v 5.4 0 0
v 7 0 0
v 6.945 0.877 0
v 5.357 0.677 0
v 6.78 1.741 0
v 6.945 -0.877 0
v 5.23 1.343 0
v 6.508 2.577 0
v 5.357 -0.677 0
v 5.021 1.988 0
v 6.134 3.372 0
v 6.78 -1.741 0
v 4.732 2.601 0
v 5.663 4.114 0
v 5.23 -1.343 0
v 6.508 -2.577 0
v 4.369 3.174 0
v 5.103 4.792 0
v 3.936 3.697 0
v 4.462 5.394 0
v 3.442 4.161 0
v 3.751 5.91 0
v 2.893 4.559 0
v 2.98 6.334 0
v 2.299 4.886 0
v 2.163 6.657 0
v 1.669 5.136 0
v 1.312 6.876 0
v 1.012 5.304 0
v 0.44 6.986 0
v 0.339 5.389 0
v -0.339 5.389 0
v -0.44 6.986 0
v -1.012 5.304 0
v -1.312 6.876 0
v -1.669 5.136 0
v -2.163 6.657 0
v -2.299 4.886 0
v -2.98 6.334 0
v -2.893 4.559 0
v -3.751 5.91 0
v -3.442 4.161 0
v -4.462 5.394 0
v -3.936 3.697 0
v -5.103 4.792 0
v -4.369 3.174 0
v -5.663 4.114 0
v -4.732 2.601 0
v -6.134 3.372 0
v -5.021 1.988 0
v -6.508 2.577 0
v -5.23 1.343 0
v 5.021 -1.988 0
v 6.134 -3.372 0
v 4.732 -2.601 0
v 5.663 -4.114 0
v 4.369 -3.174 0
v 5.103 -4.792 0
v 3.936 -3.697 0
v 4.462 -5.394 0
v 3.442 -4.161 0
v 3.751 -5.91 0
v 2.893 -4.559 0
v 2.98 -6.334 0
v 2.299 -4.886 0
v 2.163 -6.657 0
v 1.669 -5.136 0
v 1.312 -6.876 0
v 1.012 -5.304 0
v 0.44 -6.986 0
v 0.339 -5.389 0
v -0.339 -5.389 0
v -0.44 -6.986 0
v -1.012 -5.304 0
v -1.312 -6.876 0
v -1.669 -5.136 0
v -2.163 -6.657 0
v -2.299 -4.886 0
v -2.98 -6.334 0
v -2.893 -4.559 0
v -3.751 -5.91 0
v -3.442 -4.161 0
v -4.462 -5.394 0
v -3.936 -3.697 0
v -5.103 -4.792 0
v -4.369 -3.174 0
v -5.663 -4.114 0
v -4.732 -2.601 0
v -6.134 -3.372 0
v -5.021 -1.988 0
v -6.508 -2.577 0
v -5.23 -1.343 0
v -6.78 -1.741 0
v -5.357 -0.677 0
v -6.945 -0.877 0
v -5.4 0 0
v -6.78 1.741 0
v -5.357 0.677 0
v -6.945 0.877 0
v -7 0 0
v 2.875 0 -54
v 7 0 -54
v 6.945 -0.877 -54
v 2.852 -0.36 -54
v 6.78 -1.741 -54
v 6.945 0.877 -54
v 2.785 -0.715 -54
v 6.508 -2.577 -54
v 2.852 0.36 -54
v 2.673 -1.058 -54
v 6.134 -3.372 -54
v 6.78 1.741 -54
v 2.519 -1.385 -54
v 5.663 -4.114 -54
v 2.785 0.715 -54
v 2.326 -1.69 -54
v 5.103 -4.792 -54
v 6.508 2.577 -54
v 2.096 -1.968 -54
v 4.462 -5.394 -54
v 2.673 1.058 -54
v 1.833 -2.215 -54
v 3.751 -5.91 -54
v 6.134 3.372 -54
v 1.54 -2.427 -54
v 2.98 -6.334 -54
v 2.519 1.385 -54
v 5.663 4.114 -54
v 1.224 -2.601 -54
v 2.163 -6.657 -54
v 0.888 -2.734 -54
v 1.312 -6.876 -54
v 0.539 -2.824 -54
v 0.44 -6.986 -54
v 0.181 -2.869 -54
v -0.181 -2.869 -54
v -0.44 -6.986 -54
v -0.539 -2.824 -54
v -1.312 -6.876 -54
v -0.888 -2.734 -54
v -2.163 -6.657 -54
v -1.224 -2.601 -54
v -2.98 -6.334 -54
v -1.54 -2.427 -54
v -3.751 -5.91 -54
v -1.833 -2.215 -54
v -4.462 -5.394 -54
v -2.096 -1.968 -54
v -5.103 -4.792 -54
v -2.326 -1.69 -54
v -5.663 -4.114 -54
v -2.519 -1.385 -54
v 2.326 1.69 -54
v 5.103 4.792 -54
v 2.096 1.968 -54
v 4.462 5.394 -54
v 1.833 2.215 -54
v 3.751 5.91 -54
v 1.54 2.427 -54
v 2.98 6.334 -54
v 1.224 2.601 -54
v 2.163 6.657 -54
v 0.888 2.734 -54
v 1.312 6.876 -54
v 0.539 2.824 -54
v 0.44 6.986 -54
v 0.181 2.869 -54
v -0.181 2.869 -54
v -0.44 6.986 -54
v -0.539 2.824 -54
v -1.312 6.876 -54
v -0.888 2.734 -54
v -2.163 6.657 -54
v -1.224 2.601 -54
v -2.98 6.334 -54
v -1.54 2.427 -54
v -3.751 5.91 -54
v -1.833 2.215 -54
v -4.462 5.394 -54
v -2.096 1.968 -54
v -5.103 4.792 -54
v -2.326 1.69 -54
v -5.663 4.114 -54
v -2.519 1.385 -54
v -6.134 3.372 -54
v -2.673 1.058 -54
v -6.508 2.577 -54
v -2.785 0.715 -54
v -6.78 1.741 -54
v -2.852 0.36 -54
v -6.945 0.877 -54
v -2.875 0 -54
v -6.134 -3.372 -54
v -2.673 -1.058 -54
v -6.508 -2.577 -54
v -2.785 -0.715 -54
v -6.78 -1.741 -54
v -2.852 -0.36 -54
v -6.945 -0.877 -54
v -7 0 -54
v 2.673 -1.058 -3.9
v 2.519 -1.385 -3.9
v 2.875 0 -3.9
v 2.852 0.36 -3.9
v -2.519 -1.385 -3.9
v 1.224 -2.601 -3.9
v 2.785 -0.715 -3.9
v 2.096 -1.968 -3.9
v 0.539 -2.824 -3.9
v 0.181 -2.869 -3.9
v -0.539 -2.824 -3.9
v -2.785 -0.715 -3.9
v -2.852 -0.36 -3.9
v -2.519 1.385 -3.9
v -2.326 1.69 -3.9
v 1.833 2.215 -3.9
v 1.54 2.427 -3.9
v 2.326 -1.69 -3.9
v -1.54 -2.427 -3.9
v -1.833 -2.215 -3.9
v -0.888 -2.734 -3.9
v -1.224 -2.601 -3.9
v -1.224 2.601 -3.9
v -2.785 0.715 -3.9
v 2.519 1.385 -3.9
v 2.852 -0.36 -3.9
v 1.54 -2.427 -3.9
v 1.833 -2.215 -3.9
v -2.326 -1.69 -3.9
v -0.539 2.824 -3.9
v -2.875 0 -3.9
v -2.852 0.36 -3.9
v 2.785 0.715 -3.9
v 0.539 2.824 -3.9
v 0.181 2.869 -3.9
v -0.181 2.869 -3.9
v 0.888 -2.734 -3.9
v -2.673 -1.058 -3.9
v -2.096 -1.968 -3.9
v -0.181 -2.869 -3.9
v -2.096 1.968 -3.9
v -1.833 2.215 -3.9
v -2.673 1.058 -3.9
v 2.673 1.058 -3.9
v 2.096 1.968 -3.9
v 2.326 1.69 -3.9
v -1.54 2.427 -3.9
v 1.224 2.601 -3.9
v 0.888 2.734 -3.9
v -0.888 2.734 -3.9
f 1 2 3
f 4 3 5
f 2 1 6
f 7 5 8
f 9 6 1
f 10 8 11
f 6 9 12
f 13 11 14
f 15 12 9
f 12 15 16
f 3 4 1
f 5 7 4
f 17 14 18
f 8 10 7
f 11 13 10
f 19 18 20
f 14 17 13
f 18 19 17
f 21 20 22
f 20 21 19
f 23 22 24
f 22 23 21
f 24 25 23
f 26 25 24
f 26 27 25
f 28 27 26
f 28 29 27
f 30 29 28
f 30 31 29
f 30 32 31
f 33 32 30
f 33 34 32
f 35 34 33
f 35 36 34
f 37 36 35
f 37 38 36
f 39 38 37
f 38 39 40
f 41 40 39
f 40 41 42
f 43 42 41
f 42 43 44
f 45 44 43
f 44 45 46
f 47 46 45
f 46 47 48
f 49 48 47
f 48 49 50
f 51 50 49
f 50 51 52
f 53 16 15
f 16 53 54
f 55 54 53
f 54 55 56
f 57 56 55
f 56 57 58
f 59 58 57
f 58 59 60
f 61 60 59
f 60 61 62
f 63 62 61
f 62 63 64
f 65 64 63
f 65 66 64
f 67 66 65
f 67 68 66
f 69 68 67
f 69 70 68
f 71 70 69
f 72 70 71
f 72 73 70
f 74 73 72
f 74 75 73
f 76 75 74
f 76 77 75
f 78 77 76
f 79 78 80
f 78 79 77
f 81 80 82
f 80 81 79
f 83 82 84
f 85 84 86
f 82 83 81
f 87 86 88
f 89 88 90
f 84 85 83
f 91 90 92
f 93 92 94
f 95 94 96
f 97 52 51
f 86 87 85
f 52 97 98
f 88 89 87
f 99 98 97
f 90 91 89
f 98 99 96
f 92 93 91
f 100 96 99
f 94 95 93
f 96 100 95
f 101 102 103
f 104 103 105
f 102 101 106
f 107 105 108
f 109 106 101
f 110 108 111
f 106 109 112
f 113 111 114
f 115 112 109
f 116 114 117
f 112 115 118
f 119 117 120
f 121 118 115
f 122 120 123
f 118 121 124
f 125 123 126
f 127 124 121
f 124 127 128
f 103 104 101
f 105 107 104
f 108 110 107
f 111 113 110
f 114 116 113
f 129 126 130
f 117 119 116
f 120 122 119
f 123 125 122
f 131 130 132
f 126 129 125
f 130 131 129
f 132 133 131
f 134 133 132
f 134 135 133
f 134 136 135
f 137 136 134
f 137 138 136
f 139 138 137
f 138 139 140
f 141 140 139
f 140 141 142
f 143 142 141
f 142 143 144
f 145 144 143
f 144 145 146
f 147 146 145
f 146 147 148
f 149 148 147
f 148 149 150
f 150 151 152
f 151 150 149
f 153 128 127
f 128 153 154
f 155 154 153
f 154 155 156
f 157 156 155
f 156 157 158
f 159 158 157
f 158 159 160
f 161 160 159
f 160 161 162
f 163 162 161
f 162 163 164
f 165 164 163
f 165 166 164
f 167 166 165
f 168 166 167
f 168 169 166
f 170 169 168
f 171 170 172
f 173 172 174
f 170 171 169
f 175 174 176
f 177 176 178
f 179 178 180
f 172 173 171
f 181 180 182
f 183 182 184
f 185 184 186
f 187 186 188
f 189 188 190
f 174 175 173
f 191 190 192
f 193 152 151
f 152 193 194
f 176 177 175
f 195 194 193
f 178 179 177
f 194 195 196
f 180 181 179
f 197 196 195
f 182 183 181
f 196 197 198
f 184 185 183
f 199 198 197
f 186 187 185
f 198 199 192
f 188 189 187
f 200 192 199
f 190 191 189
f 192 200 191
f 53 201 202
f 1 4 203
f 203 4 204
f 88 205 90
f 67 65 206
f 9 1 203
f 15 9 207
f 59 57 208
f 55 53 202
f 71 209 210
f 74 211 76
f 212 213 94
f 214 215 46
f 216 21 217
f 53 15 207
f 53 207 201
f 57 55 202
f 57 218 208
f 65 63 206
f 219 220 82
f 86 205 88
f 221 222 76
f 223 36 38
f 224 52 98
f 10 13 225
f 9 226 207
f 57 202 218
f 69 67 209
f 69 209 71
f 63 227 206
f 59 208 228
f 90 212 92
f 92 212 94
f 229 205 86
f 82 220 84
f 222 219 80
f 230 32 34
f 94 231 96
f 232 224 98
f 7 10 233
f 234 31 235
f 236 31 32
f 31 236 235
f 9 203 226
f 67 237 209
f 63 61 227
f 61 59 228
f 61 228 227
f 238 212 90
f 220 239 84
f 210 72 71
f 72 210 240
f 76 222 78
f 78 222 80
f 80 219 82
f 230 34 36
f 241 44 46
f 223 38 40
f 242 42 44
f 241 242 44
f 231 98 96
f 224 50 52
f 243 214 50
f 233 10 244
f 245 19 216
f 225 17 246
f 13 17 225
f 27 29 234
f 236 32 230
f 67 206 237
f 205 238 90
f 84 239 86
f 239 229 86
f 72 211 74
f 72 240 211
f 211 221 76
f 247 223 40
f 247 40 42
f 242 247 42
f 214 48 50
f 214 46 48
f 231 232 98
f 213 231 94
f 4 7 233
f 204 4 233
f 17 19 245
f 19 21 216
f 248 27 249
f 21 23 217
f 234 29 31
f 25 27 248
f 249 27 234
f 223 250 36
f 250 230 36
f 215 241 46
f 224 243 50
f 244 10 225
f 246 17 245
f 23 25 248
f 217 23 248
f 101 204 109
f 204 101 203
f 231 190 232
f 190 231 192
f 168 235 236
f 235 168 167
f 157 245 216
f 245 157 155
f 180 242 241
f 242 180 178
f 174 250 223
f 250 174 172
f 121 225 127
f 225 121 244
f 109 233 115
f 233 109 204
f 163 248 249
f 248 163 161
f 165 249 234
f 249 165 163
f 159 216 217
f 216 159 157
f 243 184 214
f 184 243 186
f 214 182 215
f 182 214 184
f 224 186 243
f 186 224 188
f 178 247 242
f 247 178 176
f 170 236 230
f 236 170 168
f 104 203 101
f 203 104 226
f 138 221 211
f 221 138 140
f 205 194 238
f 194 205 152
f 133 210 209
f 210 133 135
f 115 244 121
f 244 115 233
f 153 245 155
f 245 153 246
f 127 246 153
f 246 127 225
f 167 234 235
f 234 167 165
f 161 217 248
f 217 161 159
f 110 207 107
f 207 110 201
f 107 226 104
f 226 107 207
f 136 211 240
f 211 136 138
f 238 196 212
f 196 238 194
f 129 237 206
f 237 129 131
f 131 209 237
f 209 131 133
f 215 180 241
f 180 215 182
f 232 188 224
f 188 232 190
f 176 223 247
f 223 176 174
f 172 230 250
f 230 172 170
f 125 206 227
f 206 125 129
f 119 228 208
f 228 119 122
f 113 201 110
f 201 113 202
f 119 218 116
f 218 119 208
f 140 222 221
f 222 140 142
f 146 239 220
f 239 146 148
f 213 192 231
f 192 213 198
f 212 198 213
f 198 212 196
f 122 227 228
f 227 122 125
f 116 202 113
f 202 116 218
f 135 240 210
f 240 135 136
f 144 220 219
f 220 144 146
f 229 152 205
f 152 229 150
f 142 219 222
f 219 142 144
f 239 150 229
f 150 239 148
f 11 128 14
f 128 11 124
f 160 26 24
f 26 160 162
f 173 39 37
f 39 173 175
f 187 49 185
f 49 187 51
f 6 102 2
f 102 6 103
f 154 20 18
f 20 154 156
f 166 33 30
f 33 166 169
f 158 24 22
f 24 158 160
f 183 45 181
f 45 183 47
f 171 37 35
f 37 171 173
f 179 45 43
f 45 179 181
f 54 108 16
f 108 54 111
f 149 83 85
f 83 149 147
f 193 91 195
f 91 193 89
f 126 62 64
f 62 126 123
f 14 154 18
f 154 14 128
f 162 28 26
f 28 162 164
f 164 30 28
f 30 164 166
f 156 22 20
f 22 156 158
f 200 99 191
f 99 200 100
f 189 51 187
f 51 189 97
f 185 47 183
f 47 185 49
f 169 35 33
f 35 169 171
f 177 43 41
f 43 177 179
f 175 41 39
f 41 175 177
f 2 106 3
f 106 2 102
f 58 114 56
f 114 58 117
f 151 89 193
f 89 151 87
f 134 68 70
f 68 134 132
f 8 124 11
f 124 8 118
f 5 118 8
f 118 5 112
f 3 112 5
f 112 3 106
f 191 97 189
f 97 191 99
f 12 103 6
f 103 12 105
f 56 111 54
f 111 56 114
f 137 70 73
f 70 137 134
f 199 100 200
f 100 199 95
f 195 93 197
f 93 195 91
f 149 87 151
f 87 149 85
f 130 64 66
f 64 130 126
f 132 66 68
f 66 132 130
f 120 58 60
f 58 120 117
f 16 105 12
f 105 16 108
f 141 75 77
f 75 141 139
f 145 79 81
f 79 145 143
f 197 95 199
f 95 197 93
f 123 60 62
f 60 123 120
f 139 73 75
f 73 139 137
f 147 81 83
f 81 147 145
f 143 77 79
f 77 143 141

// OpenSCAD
$fn = 50;


difference() {
	union() {
		translate(v = [0, 0, -54.0000000000]) {
			cylinder(h = 54, r = 7.0000000000);
		}
		cylinder(h = 0, r = 16.0000000000);
	}
	union() {
		translate(v = [0, 0, 0]) {
			rotate(a = [0, 0, 0]) {
				difference() {
					union() {
						#translate(v = [0, 0, -54.0000000000]) {
							cylinder(h = 54, r = 2.6000000000);
						}
						#translate(v = [0, 0, -3.9000000000]) {
							cylinder(h = 3.9000000000, r1 = 2.8750000000, r2 = 5.4000000000);
						}
						#translate(v = [0, 0, -54.0000000000]) {
							cylinder(h = 54, r = 2.8750000000);
						}
						#translate(v = [0, 0, -54.0000000000]) {
							cylinder(h = 54, r = 2.6000000000);
						}
					}
					union();
				}
			}
		}
	}
}
